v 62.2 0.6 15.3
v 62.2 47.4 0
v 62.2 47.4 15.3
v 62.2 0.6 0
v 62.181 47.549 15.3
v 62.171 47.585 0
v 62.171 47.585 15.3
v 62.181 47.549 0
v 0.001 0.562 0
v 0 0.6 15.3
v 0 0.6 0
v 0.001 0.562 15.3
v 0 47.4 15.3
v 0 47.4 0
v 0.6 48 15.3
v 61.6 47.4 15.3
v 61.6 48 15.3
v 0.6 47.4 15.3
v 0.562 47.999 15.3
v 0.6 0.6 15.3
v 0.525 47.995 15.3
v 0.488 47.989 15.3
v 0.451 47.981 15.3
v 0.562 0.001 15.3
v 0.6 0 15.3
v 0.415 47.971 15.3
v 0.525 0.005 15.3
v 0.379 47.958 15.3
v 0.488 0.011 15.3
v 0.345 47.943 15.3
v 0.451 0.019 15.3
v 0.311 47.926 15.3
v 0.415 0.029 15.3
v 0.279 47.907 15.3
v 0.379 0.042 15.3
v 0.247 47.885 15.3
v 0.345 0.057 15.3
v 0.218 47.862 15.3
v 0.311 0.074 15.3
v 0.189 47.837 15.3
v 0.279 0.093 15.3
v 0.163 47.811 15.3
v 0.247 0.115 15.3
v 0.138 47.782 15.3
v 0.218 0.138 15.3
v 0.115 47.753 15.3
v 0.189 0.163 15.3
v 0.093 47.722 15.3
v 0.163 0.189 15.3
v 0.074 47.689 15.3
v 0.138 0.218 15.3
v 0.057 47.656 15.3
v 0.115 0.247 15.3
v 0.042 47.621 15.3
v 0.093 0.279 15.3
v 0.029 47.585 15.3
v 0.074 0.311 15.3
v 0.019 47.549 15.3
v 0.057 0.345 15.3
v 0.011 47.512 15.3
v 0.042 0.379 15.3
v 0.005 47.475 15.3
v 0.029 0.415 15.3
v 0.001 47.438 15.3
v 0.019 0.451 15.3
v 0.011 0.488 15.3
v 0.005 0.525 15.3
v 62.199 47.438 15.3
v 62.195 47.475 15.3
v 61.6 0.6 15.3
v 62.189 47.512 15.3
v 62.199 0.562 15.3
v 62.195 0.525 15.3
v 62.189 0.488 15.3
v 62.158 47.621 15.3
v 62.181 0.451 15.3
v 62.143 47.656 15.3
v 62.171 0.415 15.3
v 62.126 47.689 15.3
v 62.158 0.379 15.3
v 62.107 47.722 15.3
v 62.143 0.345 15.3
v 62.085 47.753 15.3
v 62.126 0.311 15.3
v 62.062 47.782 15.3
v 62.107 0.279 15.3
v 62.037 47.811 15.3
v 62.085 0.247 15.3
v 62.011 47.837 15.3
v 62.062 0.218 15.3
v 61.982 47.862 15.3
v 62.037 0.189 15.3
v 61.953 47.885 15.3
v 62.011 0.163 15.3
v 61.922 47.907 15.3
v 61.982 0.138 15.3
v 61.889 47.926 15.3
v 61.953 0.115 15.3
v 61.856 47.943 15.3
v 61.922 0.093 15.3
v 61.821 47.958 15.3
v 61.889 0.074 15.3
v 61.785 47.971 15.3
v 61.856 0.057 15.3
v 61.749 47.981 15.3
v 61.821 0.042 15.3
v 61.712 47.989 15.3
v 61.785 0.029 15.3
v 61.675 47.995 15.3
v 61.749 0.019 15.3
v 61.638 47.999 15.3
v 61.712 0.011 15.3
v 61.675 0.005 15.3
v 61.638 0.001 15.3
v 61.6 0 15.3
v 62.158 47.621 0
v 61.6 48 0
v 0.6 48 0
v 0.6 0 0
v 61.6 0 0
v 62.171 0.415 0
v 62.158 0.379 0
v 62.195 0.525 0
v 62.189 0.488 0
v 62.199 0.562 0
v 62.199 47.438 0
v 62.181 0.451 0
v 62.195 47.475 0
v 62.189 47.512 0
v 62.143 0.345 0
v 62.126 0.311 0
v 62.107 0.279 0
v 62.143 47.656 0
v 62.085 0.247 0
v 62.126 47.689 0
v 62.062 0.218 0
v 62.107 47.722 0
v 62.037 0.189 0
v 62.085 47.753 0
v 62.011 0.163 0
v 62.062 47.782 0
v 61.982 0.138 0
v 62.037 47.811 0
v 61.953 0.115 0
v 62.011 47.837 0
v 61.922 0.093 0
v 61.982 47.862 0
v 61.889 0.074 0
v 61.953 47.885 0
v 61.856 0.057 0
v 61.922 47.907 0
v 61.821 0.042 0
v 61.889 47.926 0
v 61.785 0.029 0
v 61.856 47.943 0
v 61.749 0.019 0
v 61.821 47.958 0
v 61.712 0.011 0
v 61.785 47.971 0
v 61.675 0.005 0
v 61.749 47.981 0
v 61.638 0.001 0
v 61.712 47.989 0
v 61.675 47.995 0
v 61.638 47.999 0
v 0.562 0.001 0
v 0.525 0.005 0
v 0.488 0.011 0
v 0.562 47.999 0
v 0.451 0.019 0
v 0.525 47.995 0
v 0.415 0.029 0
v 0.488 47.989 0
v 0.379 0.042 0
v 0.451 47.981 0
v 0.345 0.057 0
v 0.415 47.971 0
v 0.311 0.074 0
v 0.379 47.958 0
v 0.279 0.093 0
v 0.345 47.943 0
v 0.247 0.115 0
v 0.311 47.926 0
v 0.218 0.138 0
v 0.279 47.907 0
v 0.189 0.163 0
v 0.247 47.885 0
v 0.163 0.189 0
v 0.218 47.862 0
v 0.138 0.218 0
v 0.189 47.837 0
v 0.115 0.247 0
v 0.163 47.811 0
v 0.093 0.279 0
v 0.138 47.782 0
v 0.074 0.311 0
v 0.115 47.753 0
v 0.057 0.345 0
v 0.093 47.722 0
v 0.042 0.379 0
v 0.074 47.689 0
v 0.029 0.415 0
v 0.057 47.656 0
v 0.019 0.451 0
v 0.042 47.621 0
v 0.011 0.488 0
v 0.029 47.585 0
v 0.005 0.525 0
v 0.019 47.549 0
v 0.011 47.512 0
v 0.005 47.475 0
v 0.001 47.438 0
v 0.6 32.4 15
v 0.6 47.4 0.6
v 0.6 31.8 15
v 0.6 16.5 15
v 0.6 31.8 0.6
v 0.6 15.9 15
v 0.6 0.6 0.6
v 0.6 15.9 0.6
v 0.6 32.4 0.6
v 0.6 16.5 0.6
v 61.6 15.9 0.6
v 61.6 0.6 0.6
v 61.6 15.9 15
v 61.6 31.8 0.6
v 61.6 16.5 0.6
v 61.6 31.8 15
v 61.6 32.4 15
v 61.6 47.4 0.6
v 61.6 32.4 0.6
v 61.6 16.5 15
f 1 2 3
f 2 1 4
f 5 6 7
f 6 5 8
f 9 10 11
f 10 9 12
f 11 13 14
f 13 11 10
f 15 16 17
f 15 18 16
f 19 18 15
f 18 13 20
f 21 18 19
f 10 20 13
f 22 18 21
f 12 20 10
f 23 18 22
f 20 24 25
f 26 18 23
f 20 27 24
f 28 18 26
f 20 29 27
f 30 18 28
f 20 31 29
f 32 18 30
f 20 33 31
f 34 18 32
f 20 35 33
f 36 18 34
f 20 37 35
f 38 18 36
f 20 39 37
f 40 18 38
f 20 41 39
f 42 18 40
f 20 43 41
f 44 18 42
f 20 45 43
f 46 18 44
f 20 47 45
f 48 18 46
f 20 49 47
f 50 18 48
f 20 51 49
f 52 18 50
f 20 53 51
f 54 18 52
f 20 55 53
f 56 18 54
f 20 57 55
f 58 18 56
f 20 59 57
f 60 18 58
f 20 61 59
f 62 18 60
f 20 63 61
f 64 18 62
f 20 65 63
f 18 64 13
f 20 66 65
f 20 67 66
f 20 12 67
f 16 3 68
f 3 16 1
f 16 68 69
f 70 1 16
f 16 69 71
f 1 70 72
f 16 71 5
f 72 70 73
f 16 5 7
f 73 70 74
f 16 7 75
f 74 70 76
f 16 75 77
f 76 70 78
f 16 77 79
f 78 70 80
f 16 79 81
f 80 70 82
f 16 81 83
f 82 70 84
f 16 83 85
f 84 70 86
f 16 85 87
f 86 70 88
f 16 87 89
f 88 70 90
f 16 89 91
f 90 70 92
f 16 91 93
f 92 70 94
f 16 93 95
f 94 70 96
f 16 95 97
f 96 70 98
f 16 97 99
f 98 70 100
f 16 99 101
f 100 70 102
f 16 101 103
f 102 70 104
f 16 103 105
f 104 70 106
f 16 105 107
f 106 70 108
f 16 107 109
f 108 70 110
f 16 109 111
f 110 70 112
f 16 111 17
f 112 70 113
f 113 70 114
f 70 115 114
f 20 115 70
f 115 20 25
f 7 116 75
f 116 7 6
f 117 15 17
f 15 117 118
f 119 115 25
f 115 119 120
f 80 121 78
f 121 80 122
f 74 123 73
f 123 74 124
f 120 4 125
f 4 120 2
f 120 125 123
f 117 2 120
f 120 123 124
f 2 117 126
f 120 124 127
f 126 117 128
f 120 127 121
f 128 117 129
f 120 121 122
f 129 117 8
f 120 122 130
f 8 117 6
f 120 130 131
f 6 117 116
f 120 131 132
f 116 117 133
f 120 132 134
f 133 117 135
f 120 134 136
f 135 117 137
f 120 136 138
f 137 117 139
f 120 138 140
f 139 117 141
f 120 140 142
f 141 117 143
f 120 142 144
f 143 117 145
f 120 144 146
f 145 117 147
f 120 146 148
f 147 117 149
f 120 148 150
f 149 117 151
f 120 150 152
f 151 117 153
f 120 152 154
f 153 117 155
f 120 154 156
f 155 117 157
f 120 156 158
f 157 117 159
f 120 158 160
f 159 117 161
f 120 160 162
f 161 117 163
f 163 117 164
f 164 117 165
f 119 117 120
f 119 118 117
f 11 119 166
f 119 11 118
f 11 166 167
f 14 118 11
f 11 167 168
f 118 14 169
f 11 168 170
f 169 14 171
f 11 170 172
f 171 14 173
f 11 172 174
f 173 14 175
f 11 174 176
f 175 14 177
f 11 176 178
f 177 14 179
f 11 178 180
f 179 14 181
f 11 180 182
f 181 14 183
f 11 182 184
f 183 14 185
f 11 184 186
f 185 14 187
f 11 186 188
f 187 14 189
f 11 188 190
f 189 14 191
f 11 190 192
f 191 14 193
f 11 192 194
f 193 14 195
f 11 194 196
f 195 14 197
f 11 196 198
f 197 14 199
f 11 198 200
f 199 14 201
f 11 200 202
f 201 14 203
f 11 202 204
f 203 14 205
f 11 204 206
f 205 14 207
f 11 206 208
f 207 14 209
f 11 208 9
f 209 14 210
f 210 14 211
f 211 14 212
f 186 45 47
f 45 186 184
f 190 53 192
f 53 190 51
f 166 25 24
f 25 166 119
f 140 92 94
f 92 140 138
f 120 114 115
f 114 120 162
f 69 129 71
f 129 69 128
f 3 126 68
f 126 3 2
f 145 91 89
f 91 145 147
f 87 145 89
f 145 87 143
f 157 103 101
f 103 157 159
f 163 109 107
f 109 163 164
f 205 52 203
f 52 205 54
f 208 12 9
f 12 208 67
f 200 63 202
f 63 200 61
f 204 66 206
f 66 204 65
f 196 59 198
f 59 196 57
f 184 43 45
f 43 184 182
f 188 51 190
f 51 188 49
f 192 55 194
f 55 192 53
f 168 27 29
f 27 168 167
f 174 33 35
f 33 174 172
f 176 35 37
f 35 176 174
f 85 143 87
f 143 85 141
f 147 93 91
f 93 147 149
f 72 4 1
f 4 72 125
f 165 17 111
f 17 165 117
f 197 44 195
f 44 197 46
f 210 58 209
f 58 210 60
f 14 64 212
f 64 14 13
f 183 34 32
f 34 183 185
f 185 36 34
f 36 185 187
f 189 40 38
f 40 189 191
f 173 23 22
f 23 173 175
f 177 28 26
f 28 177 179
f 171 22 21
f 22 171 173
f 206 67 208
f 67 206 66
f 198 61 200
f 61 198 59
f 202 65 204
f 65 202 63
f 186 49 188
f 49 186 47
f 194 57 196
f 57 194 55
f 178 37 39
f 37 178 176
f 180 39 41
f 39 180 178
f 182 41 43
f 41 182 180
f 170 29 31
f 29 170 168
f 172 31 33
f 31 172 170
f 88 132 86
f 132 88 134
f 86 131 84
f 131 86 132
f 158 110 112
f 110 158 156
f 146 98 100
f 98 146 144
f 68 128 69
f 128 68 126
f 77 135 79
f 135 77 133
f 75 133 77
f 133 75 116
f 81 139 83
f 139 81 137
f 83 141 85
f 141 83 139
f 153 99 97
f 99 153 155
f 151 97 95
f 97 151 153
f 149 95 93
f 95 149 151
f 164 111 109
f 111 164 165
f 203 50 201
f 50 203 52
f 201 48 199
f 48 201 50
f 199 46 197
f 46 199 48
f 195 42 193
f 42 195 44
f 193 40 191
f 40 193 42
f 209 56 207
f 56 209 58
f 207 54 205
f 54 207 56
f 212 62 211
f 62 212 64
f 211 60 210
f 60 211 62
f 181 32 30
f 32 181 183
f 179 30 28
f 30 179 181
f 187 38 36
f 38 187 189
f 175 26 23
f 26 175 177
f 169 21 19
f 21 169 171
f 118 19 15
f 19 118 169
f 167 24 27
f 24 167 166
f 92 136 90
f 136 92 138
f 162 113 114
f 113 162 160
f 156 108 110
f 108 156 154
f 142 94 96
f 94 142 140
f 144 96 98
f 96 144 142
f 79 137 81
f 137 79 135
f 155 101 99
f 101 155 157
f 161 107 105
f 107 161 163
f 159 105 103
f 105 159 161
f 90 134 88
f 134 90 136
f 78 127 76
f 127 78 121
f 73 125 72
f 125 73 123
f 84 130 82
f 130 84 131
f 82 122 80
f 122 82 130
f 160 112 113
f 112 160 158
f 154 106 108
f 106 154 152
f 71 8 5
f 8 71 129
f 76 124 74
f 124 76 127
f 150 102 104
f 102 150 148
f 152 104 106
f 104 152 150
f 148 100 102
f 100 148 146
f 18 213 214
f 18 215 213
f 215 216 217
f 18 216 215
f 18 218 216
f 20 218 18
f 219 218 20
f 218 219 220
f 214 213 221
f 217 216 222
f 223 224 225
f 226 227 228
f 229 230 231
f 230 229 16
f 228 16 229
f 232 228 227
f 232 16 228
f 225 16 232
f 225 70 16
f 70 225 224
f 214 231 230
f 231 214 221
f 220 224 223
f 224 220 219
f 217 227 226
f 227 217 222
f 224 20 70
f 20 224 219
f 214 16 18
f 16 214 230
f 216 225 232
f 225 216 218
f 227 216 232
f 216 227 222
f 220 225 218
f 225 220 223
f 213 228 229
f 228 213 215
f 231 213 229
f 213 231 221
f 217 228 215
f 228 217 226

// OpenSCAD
$fn=100; // resolution
frontPlateThickness=0.3;
cylRoundEdgeRadius=0.6;

face_plate_width = 61;
face_plate_height = 46.8;

compartmentWidth = 15.3;
wallThickness = 0.6;

boxDepth = 15;

//color( "blue", 0.2 )
difference() {
    minkowski() {
        cube([face_plate_width, face_plate_height, boxDepth]);
        translate([cylRoundEdgeRadius,cylRoundEdgeRadius, 0])
        cylinder(r=cylRoundEdgeRadius,h=frontPlateThickness);
    }
    //color( "aquamarine", 1.0 )
    translate([cylRoundEdgeRadius,cylRoundEdgeRadius, 0.6])
    cube([face_plate_width, face_plate_height, boxDepth + 1]);
}


translate([cylRoundEdgeRadius,compartmentWidth + wallThickness, 0])
cube([face_plate_width, wallThickness, boxDepth]);

translate([cylRoundEdgeRadius,(compartmentWidth + wallThickness) * 2, 0])
cube([face_plate_width, wallThickness, boxDepth]);
